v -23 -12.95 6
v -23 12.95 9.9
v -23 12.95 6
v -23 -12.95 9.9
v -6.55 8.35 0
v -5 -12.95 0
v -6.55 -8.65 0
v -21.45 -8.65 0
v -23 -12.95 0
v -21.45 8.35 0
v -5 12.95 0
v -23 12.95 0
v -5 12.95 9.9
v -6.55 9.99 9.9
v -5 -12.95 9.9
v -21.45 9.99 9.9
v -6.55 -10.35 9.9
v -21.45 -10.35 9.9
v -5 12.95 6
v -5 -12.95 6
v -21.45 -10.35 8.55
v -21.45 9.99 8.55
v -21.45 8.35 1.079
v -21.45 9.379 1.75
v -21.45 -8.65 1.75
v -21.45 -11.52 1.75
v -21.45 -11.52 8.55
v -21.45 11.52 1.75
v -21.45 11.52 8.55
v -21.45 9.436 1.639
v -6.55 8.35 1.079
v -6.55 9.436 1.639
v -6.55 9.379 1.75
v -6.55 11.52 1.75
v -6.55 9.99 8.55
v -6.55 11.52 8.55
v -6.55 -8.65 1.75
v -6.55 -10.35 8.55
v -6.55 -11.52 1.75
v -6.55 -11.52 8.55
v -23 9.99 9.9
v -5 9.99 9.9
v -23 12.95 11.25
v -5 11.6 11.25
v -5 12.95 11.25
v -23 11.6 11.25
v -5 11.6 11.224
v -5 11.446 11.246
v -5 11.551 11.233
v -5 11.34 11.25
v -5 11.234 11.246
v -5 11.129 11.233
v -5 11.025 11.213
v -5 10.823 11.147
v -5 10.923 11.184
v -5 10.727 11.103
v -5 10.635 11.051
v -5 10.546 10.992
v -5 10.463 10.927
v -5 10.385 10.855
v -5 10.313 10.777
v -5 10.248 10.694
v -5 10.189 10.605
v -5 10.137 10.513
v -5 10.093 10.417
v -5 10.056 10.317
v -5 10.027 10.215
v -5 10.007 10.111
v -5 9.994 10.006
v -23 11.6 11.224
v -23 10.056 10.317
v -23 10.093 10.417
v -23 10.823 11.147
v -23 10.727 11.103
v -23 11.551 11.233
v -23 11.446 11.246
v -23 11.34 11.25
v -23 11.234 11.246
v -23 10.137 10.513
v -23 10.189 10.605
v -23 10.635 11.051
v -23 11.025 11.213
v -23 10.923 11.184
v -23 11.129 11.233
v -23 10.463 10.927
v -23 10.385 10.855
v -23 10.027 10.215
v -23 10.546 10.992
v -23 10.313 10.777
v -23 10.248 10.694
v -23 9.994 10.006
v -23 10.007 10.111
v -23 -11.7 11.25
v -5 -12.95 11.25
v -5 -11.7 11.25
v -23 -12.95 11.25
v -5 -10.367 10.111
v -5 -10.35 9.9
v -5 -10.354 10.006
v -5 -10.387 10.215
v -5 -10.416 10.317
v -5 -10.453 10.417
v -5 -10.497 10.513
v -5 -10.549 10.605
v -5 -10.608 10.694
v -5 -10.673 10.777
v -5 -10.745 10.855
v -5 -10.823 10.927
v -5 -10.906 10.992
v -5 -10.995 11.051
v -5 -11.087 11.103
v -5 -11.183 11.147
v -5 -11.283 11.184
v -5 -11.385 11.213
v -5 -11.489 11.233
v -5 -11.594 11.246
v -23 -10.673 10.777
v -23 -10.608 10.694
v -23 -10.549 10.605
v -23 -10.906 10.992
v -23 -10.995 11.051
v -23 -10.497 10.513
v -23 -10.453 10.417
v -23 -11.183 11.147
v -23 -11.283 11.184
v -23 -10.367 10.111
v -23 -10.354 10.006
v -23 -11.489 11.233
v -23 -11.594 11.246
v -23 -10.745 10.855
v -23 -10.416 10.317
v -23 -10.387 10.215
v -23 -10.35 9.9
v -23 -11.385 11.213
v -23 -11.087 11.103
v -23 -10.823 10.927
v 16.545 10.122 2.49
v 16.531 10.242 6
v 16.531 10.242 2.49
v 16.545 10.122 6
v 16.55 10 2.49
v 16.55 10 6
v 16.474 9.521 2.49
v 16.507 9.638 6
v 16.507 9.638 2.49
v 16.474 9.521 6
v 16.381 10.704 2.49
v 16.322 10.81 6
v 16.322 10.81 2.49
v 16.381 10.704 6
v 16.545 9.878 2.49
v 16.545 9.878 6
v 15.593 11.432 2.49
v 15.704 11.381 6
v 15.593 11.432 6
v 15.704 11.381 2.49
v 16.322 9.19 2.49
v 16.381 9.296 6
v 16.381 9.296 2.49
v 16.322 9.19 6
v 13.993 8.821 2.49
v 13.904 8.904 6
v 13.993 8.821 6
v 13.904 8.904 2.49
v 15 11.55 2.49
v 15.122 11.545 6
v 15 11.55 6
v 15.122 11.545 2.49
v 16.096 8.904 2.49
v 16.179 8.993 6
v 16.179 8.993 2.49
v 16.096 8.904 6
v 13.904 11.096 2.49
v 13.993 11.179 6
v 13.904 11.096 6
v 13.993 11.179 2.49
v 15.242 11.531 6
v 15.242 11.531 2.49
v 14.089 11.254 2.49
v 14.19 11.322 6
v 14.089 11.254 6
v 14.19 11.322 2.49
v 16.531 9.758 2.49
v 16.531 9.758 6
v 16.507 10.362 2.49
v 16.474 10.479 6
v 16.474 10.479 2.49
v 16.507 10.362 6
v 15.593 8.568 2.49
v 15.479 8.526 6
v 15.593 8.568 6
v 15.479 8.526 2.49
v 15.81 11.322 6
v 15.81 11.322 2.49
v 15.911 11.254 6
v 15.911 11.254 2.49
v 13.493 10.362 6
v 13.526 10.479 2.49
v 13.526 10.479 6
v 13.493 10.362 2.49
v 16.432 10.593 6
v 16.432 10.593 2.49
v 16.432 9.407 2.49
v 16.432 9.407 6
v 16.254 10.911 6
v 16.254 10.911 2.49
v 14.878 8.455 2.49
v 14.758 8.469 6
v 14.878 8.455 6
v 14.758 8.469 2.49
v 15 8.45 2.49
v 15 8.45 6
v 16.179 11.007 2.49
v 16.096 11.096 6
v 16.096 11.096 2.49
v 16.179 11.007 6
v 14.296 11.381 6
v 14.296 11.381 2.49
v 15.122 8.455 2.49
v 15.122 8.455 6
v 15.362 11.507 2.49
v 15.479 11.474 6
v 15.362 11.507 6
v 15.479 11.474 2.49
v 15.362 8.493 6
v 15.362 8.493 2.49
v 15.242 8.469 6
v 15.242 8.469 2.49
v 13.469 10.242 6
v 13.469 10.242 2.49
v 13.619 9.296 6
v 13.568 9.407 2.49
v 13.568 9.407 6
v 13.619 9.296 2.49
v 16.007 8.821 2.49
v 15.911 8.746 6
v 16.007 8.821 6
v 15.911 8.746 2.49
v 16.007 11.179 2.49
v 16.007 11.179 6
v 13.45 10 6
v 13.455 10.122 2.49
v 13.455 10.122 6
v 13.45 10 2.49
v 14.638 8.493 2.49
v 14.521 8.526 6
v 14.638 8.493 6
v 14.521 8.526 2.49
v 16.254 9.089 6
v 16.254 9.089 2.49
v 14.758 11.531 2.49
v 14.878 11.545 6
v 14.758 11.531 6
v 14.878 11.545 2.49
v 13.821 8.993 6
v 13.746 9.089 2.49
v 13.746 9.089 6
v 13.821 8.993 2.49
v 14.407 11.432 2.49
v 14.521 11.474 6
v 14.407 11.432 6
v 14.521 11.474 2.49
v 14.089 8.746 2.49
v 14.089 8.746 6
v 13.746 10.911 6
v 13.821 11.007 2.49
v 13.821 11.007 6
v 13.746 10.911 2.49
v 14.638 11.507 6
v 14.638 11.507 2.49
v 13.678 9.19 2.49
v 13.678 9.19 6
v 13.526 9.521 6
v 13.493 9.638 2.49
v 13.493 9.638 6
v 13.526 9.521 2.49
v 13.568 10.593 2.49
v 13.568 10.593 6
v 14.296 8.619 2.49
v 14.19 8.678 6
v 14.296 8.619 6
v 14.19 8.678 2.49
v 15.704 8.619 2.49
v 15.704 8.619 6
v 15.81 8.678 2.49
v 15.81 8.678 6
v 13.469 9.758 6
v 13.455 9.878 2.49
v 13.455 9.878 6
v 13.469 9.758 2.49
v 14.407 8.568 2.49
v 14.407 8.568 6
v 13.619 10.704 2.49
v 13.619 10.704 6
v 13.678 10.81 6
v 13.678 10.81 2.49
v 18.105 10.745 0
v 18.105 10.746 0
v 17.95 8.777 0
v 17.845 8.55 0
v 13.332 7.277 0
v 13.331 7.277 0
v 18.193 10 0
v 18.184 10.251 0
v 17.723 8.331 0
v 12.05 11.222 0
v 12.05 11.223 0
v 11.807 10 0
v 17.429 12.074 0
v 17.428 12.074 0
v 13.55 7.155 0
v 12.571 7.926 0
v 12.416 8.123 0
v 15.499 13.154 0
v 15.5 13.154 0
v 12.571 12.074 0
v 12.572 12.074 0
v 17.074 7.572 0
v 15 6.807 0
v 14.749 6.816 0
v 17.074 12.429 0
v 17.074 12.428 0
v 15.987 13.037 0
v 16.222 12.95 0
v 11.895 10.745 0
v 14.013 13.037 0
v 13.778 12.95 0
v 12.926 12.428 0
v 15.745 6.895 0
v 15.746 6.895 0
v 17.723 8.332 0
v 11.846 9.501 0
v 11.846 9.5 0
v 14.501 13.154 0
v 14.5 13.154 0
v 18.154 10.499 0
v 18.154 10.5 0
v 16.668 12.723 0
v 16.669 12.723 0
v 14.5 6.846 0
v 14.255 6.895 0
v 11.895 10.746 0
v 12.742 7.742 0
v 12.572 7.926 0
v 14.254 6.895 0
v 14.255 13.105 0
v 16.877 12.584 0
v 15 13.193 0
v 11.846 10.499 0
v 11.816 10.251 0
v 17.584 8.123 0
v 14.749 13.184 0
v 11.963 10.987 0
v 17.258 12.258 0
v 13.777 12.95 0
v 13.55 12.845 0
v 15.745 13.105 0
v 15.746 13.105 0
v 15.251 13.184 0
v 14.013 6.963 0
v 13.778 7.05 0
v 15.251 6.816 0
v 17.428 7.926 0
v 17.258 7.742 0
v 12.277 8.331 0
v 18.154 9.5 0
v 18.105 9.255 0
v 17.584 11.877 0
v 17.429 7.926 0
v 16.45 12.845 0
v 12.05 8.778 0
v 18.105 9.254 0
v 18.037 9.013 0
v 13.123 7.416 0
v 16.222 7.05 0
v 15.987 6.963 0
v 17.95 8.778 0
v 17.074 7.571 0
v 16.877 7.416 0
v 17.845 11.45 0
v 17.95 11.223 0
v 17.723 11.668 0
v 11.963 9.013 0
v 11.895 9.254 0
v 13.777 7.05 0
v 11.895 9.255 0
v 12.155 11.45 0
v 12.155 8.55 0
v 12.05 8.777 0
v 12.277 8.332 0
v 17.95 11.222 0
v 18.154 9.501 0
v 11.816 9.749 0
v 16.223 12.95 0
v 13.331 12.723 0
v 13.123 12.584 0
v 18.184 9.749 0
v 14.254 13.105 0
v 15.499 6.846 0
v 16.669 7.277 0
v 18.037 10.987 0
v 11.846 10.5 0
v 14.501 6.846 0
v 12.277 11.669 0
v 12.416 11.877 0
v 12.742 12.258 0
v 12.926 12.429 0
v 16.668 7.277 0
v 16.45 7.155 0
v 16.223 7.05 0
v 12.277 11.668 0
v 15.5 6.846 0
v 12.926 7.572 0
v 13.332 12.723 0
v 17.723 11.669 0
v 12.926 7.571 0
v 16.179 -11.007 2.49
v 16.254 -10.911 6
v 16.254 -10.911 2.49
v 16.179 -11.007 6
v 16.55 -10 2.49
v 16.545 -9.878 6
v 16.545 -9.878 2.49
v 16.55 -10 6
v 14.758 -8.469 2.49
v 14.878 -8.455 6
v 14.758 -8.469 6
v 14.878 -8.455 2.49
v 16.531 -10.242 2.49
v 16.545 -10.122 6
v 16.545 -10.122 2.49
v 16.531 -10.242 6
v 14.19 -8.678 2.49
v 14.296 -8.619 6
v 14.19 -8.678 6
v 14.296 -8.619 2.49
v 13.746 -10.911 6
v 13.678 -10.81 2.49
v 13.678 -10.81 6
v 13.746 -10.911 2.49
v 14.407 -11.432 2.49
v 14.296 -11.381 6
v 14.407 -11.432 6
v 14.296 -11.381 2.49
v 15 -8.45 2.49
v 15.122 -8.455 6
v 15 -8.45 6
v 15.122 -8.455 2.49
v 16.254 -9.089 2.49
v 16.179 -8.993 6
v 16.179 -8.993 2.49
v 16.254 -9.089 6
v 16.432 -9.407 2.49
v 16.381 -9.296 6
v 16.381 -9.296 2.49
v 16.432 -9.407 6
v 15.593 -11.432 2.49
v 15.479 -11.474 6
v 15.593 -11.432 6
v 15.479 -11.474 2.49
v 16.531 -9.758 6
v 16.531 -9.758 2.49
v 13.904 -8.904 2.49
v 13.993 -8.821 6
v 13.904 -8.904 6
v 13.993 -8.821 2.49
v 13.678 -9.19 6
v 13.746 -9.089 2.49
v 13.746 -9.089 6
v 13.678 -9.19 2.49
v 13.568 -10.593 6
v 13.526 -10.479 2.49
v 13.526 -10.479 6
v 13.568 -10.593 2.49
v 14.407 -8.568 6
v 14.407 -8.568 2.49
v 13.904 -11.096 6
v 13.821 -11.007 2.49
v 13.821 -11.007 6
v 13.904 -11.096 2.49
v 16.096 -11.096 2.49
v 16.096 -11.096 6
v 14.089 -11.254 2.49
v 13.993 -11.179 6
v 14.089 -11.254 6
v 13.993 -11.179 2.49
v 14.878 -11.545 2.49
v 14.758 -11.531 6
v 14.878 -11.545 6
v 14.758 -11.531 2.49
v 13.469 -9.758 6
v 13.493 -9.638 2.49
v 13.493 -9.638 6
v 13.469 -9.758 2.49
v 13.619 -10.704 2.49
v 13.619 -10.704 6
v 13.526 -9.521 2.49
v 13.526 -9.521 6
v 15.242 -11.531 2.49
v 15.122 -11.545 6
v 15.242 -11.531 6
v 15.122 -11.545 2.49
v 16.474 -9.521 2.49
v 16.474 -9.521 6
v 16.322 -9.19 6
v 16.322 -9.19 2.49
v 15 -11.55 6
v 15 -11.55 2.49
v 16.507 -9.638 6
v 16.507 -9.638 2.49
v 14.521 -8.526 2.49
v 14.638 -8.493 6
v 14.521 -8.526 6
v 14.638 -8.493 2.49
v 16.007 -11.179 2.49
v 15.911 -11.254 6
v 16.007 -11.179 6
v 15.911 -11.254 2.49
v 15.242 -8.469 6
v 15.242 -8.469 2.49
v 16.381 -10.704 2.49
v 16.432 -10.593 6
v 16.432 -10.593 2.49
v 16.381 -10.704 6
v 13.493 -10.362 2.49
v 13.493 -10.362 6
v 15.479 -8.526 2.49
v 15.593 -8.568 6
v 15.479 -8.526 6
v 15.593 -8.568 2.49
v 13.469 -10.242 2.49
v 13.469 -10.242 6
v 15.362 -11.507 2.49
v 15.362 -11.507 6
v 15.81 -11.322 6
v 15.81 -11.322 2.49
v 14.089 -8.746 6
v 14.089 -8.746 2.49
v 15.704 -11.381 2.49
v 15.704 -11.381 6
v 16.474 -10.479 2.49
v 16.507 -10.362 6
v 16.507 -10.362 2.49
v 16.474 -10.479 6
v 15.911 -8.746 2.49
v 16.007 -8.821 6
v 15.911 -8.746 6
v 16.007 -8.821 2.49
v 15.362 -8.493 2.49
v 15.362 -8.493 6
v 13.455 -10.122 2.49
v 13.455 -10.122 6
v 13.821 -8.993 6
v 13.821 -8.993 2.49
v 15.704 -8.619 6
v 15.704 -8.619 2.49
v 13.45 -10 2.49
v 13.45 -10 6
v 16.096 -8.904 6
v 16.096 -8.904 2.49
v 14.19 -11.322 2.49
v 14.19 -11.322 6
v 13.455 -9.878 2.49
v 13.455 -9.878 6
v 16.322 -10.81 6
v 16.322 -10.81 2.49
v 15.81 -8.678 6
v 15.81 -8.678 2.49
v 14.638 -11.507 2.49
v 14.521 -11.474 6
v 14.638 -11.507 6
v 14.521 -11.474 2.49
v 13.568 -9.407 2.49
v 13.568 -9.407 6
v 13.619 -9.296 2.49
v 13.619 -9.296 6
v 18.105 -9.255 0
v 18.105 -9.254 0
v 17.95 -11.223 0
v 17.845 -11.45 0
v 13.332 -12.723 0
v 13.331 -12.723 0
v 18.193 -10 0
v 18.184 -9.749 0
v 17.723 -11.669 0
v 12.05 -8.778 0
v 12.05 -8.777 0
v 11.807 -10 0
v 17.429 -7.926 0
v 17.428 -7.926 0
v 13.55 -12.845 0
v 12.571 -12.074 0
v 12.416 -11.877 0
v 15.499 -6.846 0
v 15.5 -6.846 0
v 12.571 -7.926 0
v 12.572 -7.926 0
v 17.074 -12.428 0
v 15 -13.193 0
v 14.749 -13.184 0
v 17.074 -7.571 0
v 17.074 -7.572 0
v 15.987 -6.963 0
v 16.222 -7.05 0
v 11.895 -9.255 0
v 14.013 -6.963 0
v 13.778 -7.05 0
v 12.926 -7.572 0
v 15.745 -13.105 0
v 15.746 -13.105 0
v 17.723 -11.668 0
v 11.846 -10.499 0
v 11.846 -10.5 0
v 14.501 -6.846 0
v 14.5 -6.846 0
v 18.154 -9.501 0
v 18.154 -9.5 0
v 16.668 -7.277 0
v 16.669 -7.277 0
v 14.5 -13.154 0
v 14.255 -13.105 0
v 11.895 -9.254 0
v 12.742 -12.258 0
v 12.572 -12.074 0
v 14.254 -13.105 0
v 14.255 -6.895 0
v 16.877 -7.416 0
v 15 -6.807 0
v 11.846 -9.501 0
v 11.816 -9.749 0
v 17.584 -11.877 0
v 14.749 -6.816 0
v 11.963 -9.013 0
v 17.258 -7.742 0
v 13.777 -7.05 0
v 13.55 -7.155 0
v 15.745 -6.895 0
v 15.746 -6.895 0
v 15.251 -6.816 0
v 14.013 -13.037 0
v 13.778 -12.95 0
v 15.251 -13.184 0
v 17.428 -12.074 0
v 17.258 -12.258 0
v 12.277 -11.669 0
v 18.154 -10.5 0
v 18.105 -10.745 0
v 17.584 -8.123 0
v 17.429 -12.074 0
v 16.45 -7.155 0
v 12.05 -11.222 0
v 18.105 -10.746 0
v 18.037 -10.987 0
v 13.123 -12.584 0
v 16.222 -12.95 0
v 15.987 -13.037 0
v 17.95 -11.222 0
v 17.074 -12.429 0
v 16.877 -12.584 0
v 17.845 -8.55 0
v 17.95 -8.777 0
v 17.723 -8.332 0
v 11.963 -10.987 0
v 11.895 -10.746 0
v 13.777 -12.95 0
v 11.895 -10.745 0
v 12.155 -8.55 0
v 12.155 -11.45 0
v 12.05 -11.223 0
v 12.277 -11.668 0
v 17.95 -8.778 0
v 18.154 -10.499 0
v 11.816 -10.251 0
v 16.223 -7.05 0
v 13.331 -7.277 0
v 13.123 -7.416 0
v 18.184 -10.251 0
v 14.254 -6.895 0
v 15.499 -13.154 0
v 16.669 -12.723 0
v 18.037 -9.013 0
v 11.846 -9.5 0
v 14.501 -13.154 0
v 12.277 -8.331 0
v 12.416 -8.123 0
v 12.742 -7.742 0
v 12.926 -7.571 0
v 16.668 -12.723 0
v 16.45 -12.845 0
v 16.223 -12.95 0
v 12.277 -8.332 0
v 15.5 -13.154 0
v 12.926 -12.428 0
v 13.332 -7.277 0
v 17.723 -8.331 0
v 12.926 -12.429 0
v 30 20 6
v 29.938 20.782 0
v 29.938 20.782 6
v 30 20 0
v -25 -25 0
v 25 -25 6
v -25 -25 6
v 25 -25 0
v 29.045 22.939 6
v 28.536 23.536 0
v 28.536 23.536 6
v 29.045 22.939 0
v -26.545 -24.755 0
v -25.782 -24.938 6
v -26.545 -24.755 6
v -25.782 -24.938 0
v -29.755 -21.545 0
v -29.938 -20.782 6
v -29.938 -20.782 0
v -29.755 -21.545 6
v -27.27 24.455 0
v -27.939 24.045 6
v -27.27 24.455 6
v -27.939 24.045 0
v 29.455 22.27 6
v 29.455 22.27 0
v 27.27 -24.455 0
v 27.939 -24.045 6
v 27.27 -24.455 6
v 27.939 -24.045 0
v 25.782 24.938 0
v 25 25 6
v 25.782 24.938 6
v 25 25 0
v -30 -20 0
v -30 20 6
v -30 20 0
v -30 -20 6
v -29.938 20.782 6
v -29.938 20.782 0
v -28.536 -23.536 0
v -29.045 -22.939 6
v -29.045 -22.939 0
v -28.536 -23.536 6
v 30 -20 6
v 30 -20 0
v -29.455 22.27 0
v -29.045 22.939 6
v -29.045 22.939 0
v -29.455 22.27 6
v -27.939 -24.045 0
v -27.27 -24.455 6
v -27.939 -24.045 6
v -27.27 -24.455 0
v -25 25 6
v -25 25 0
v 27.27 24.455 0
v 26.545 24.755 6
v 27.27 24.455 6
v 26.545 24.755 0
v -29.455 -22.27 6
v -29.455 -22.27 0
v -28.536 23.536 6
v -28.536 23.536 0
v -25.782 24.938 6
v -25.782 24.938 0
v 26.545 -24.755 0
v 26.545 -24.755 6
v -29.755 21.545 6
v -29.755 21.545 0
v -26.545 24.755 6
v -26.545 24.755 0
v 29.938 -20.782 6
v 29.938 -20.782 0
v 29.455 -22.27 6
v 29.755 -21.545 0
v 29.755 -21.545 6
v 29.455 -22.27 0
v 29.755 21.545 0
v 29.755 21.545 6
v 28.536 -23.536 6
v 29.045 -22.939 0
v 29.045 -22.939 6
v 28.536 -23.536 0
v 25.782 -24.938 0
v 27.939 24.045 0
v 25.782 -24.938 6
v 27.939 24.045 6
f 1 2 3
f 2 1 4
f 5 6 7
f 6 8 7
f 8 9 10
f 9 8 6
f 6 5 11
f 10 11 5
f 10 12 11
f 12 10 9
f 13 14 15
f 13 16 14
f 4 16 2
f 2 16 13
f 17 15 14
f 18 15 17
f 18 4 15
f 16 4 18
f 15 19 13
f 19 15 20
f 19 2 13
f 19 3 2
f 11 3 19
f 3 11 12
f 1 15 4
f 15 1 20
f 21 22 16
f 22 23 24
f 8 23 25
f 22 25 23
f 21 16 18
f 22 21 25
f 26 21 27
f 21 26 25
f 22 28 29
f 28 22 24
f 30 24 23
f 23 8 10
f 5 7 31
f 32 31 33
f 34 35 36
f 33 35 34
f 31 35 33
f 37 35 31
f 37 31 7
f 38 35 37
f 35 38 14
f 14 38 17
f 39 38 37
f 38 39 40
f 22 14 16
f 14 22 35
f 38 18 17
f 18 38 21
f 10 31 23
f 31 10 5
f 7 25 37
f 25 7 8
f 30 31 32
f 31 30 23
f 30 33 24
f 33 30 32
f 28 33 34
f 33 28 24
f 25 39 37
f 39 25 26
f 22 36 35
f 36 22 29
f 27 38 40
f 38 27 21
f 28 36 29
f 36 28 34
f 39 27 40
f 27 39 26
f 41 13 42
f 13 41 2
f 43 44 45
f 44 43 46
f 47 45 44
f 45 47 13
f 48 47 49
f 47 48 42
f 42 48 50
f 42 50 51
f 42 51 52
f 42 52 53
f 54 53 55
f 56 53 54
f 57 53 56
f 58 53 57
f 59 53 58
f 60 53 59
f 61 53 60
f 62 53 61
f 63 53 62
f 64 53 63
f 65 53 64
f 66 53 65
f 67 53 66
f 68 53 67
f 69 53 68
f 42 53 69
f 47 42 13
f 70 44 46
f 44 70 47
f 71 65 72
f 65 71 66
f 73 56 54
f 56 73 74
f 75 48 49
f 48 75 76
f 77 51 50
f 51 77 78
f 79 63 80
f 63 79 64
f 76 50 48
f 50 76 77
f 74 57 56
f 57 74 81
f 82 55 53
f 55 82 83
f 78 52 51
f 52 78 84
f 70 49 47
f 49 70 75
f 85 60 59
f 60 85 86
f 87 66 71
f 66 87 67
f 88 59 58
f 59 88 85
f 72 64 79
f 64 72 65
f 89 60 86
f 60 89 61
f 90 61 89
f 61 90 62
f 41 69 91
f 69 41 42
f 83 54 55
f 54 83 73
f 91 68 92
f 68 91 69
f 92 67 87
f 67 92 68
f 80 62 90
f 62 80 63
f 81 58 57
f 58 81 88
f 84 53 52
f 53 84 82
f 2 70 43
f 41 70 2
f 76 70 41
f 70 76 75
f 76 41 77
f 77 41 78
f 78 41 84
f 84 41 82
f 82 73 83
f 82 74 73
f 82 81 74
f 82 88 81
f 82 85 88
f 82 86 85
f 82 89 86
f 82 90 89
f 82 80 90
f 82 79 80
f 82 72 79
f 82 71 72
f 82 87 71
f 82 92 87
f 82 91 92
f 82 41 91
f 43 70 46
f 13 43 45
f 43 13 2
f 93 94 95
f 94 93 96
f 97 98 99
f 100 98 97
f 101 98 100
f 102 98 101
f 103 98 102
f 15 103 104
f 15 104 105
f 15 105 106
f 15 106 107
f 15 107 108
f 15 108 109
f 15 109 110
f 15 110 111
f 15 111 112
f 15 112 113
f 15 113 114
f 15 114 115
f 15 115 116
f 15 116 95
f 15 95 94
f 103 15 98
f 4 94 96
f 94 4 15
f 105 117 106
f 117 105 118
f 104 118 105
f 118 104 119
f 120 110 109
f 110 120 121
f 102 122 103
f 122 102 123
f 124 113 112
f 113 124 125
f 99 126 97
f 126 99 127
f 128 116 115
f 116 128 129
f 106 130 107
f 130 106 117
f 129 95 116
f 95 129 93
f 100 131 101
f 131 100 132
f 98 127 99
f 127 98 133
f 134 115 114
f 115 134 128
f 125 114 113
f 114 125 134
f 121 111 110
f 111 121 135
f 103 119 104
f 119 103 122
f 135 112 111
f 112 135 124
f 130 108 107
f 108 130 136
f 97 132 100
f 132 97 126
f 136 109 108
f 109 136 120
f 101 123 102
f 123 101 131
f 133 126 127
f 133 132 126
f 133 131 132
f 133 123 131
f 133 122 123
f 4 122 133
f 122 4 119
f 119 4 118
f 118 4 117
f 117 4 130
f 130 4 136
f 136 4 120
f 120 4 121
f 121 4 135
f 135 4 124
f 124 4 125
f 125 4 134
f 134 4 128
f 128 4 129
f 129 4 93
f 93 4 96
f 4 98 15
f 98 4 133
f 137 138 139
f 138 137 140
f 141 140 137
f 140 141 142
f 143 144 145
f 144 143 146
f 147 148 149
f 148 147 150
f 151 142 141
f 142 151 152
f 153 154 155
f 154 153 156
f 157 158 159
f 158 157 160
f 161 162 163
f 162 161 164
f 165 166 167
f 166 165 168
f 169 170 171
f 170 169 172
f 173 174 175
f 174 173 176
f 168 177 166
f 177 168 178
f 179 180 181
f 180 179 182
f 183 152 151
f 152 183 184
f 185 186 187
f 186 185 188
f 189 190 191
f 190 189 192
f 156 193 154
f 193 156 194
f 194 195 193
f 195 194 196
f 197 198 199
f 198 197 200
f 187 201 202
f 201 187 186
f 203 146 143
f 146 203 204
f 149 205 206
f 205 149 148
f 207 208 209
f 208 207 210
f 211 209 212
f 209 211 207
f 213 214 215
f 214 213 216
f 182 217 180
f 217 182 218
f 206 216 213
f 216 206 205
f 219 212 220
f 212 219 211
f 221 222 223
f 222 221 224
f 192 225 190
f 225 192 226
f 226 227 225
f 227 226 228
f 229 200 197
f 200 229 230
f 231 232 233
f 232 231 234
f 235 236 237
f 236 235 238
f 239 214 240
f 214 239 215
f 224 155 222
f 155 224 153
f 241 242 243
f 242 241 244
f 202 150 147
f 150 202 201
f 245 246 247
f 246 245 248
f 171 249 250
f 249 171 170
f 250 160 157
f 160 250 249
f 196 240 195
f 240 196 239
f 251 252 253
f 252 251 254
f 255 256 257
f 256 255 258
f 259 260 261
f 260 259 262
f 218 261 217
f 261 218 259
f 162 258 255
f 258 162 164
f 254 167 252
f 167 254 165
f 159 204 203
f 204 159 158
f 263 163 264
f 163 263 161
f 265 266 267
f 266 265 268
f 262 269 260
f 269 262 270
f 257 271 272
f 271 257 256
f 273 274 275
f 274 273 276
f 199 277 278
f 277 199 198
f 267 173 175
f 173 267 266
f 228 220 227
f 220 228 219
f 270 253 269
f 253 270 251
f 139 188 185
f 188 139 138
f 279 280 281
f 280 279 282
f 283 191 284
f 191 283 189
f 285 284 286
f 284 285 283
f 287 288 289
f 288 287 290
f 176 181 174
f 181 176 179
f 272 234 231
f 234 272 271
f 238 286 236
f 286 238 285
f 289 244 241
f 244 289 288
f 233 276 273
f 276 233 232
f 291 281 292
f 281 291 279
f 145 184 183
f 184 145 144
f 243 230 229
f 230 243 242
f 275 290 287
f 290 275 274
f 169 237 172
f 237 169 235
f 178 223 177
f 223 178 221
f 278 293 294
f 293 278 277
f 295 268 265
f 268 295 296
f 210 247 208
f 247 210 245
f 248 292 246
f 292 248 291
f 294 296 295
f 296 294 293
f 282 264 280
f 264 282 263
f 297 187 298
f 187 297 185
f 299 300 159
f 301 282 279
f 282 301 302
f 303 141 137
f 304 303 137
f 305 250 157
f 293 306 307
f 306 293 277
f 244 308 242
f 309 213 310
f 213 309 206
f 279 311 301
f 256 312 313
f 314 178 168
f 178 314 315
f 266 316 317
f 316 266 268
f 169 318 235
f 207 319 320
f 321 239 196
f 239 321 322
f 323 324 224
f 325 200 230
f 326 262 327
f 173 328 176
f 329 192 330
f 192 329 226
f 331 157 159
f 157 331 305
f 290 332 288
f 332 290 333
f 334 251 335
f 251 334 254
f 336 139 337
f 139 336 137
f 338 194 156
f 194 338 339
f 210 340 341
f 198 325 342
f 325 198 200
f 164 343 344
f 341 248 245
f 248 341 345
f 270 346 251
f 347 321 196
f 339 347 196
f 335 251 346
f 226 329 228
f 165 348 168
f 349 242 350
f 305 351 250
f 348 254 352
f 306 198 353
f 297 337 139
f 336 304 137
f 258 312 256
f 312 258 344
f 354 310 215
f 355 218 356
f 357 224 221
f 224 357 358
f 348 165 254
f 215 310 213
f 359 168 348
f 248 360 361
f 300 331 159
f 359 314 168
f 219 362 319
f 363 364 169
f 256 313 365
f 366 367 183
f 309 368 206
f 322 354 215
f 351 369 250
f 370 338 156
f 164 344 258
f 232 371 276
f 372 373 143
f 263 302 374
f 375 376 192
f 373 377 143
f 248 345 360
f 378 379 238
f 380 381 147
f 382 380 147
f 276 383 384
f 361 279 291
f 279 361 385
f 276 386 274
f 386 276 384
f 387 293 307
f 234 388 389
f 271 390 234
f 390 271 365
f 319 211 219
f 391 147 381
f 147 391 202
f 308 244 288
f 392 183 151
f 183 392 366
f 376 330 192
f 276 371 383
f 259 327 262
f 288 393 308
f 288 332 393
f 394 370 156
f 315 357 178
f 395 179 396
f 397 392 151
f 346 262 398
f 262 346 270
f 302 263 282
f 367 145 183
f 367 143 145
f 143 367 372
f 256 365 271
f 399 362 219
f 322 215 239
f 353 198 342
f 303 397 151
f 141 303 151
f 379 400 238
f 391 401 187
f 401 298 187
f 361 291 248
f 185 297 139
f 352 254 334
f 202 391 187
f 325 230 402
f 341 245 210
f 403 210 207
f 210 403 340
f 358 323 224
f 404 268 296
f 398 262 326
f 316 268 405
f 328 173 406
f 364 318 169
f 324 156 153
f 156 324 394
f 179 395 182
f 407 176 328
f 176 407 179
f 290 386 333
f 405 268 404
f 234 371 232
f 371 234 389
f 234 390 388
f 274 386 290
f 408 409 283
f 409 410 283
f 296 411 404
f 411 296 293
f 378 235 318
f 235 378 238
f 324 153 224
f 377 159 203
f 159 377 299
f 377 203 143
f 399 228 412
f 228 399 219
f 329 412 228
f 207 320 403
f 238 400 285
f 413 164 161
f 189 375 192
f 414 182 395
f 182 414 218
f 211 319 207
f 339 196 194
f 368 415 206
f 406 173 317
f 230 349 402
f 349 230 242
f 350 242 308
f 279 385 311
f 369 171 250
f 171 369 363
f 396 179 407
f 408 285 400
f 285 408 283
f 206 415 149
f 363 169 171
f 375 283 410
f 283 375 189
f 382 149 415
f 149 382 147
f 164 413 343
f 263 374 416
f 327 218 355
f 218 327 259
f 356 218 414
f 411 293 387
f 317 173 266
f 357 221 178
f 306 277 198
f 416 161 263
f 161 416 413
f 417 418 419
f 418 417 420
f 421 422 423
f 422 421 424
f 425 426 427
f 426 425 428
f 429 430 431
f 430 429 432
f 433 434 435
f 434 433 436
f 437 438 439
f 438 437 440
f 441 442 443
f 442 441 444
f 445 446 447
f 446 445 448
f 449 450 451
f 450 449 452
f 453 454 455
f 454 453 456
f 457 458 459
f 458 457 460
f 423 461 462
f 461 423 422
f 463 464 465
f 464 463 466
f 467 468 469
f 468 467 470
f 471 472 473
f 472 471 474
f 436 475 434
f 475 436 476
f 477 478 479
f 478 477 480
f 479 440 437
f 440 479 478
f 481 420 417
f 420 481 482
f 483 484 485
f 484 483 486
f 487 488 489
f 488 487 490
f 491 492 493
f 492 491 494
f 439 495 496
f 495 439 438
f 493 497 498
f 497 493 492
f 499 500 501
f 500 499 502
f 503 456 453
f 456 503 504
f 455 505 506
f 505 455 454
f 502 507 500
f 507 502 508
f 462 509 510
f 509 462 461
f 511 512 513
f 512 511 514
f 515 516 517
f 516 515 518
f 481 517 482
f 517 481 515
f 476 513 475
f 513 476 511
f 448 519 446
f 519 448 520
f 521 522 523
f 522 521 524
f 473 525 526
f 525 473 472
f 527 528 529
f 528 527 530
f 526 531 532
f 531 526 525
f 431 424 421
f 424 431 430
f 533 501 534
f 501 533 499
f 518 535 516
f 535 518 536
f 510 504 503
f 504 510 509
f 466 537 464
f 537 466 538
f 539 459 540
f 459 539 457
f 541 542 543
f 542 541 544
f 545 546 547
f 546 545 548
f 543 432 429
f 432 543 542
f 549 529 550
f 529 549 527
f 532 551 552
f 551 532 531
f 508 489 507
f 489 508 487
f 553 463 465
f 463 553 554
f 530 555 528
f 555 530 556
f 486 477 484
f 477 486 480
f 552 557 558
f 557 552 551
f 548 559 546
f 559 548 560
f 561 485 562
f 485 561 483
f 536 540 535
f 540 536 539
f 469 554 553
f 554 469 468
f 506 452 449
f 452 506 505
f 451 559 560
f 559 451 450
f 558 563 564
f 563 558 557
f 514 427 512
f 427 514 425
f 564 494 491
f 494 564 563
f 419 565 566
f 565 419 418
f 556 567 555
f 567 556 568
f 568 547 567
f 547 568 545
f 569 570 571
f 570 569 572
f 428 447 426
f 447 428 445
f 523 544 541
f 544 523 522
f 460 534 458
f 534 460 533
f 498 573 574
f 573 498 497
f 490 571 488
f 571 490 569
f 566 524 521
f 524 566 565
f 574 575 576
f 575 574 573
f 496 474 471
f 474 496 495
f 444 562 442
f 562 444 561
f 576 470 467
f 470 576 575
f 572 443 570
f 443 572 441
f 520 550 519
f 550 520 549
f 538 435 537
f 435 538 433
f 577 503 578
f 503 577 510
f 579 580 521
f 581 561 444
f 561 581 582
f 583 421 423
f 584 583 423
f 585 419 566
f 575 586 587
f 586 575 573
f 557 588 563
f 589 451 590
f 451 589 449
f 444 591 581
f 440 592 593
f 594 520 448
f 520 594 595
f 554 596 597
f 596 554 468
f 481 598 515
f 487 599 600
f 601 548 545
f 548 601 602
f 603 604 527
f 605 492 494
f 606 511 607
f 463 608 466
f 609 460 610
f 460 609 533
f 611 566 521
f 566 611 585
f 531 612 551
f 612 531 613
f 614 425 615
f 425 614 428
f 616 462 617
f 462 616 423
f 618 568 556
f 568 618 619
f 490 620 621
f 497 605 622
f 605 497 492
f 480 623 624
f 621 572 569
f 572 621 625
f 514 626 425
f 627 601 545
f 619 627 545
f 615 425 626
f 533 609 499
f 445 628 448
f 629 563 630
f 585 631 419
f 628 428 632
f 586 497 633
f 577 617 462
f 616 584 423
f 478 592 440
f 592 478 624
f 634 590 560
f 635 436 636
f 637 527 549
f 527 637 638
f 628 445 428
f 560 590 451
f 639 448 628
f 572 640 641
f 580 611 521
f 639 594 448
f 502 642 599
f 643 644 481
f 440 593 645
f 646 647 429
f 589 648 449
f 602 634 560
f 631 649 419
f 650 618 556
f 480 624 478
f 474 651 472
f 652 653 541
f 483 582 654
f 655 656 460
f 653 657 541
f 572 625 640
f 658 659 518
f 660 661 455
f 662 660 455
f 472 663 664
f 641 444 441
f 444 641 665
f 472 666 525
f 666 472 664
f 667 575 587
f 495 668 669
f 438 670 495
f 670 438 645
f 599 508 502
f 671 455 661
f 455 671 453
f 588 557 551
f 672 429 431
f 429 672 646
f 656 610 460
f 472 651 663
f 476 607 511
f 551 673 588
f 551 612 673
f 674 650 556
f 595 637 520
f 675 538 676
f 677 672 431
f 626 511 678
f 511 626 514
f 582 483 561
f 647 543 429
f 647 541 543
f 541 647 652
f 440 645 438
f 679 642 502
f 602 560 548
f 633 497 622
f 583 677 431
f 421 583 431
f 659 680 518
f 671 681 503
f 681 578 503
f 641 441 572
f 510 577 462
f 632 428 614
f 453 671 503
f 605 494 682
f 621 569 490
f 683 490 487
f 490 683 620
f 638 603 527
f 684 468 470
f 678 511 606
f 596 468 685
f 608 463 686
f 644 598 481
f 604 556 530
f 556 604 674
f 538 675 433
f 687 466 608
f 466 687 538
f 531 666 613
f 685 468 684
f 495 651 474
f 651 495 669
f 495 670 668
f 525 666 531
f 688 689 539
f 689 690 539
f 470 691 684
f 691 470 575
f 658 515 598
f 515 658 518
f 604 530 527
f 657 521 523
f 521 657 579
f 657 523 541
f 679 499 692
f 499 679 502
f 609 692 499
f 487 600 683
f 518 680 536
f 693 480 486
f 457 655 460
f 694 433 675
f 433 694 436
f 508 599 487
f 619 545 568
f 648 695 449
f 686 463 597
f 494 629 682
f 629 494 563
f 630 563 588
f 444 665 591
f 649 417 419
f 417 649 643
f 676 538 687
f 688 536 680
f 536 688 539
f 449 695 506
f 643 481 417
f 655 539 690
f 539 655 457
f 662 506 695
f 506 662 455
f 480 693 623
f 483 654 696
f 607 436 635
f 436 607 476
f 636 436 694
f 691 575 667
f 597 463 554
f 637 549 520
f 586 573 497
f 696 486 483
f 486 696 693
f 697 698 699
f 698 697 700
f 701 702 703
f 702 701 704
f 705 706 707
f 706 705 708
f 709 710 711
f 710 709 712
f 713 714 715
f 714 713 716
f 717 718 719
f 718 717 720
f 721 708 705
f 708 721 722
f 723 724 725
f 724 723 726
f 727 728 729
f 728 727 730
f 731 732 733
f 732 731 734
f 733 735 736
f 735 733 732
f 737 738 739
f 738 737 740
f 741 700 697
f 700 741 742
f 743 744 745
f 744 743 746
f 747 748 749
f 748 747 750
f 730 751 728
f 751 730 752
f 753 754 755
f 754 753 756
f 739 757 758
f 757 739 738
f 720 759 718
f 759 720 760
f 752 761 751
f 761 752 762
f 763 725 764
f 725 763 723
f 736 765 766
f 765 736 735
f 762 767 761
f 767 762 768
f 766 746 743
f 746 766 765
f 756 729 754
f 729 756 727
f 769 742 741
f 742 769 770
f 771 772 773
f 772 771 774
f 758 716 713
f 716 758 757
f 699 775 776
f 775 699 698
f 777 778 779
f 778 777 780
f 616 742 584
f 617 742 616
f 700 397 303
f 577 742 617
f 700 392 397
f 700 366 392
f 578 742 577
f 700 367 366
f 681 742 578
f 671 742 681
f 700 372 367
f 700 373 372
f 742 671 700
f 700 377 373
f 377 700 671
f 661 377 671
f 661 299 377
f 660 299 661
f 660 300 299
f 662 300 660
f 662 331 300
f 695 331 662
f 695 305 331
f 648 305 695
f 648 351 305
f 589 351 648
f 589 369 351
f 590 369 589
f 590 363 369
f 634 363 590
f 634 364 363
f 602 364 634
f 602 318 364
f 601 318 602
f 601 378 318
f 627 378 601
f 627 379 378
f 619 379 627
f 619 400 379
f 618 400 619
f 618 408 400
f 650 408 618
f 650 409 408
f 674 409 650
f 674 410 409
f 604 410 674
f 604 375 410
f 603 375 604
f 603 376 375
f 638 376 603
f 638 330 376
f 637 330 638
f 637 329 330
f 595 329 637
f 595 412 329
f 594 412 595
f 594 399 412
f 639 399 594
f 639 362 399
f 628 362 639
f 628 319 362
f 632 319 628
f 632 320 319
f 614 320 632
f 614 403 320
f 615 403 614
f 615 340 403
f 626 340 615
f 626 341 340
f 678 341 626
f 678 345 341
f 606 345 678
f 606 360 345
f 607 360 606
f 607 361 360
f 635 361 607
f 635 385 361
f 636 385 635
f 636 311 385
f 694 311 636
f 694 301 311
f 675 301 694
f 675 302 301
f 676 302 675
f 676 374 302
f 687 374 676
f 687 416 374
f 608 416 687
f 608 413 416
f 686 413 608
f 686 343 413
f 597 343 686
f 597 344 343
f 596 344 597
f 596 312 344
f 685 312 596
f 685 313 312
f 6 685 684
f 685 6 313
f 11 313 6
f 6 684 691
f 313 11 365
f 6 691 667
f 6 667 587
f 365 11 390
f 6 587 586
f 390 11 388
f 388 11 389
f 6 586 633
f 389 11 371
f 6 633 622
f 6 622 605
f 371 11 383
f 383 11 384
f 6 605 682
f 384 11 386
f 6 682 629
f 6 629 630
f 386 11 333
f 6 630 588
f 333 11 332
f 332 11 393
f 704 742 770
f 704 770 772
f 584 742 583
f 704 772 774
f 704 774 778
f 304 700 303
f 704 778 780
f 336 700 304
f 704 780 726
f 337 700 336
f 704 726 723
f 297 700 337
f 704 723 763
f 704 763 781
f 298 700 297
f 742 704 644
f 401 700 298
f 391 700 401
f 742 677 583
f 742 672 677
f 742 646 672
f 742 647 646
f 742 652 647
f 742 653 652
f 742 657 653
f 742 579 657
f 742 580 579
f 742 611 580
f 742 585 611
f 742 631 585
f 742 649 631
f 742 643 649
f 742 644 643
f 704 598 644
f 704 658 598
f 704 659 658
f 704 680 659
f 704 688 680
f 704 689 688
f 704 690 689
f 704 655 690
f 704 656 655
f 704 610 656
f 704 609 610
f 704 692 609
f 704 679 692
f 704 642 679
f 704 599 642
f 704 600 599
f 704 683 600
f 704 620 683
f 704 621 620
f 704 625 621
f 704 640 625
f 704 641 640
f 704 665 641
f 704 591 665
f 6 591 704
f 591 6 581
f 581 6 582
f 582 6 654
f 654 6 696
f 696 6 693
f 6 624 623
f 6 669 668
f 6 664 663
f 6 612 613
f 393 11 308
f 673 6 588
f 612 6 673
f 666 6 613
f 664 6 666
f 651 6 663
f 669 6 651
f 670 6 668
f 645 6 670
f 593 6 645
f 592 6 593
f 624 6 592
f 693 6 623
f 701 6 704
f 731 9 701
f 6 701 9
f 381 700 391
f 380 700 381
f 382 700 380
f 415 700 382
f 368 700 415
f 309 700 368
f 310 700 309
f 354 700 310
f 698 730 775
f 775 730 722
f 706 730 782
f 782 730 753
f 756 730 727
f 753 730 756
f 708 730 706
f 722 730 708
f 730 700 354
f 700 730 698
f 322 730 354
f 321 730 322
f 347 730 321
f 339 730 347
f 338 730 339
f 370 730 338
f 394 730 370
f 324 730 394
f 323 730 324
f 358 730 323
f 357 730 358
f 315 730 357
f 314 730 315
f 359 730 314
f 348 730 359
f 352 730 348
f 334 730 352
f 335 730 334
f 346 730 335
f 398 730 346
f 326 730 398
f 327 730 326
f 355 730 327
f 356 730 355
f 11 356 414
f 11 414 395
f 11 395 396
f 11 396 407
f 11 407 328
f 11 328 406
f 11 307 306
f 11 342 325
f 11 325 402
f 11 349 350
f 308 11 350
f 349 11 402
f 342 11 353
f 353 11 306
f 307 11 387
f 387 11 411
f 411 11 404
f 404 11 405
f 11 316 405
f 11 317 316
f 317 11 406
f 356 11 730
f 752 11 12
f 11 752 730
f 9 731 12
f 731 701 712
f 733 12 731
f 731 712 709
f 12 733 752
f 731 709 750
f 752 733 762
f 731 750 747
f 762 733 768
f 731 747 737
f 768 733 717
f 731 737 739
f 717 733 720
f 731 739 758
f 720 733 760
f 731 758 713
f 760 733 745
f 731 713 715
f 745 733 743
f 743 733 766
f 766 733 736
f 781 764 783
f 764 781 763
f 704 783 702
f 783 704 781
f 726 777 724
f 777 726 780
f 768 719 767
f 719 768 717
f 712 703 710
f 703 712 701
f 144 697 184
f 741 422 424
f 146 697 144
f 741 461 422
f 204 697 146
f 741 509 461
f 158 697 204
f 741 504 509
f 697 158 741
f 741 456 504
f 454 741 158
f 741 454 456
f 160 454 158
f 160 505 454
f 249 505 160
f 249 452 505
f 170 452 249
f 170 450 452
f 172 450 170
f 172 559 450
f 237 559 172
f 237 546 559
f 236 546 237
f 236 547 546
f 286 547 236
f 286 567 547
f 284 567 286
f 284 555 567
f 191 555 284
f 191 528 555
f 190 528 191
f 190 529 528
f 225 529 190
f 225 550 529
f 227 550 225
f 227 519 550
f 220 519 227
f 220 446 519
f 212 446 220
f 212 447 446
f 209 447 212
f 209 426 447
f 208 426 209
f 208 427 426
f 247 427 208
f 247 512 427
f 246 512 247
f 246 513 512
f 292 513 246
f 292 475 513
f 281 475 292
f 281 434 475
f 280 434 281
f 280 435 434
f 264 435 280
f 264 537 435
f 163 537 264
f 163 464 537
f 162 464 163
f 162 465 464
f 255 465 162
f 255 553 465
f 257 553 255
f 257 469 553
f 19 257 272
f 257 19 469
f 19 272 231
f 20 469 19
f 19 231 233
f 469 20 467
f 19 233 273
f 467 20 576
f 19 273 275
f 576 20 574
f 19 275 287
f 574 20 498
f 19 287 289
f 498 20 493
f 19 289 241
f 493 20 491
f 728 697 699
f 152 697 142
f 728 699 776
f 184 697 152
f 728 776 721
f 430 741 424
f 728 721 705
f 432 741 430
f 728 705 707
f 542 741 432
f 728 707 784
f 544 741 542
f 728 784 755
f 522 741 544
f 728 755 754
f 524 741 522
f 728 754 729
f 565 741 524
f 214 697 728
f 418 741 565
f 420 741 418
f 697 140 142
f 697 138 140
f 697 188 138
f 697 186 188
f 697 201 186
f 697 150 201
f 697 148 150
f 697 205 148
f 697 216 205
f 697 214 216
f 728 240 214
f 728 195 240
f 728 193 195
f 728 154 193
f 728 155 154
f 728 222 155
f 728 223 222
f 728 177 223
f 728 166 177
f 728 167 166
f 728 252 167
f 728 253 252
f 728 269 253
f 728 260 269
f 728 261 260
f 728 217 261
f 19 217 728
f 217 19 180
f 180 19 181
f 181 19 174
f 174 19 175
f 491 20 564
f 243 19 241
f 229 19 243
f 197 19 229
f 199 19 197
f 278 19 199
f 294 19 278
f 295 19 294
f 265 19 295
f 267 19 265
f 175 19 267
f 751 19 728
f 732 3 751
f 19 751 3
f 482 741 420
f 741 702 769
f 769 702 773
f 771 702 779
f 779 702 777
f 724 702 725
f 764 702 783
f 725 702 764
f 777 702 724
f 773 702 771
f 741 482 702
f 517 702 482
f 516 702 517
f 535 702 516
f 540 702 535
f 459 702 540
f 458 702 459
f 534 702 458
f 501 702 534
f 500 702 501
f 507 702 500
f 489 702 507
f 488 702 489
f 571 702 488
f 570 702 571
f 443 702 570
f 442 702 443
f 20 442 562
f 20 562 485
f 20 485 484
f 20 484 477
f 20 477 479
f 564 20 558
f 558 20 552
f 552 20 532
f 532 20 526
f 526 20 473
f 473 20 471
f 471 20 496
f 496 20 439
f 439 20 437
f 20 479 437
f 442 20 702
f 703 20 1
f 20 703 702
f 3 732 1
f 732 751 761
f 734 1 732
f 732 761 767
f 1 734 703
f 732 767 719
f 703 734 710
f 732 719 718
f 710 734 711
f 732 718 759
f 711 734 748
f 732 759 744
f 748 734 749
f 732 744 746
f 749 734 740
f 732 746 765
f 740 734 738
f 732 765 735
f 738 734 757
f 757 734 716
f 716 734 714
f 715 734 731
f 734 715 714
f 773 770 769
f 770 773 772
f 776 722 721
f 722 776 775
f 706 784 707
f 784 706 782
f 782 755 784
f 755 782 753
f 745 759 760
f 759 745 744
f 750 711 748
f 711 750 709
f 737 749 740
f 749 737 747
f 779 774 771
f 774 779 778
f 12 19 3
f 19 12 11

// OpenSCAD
// file: rj45_keystone_receiver.scad
$fa = 5;
$fs = 0.01;

/*
 * The RJ45 keystone receiver
 */
// adjustments to original
clip_adjustment =0.9;   // some keystone jacks fit too tight so we add a little here
exterior_slot_adjustment = 3.4; // original 2.6

// the following have not been changed
outside_width=18;
outside_height=25 + clip_adjustment;
outside_depth=9.9;
outside_wall = 1.55;
inside_width = outside_width-(outside_wall*2);
inside_height= outside_height-5.56; //19.44;
inside_cutout_height = outside_height - 2.86;
inside_cutout_depth = outside_depth - 3.1;
exterior_slot = 7.9;
exterior_notch_height = 17.0;
exterior_notch_depth = outside_depth - 2.7;
exterior_slot_height = outside_height - 8.75;
top_clip_bar = outside_height - 2.96 ;

module rj45Receiver()
{
    difference() {
        cube([outside_width, outside_height, outside_depth]);
        translate([outside_wall, 2.6, -0.001]) {
            cube([inside_width, inside_height, exterior_slot]);
        }
        // exterior slot
        translate([outside_wall, exterior_slot_adjustment+clip_adjustment,
                exterior_slot]) {
            cube([inside_width, exterior_notch_height, 2.001]);
        }
        // exterior_notch
        translate([outside_wall, exterior_notch_height+clip_adjustment,
                exterior_notch_depth]) {
            rotate(v=[1, 0, 0], a=-27.3) 
                cube([inside_width, 3.5, 3]);
        }
        // interior cutout
        translate([outside_wall, 1.43, 1.35]) {
            cube([inside_width, inside_cutout_height, inside_cutout_depth]);
        }
    }
    // top clip bar
    translate([0, top_clip_bar, -1.35]) {
        intersection() {
            cube([outside_width, 2.96, 1.35]);
            union() {
                translate([0, 1.61, 0]) {
                    cube([20.42, 1.61, 1.35]);
                }
                translate([0, 1.35, 1.35]) {
                    rotate(v=[0, 1, 0], a=90) {
                        cylinder(h=20.42, r=1.35);
                    }
                }
            }
        }
    }
    // bottom clip bar
    translate([0, 0, -1.35]) {
        intersection() {
            cube([outside_width, outside_wall*2, 1.35]);
            union() {
                cube([20.42, 1.25, 1.35]);
                translate([0, 1.25, 1.35]) {
                    rotate(v=[0, 1, 0], a=90) {
                        cylinder(h=20.42, r=1.35);
                    }
                }
            }
        }
    }
}

// these are sometimes needed when fitting the jacks into projects
function rj45_width() = outside_width;
function rj45_height() = outside_height;
function rj45_depth() = outside_depth;

 // So a hole can be cut for the keystone socket
module rj45VolumeBlock() {
    cube([outside_width, outside_height, outside_depth]);
}

rotate([0,180,0]) 
    rj45Receiver();
// main file
// Requires support, 30% fill and PETG-CF on Textured PEI Plate with Glue Stick

rj45ReceiverOffset          = [-5, -(25.9/2), 9.9];
rj45ReceiverCutoutDimensions= [18, 25.9];

plateOffsetX                = 25.0;
plateDimensions             = [60, 50, 6];
plateRadius                 = 5.0;

m3BoltHoleDiameter          = 3.1;
m3BoltHeadDiameter          = 6.4;
m3BoltHeadHeight            = 2.5;
m3BoltHeadPositions         = [[15.0, 10.0], [15.0, -10.0]];

manifoldCorrection          = 0.01;
manifoldCorrection2         = manifoldCorrection * 2;
$fn                         = 80;


use <rj45_keystone_receiver.scad>;



decPlate();



module decPlate()
{
    difference()
    {
        roundedCube( plateDimensions, plateRadius);

        translate( [rj45ReceiverOffset[0], rj45ReceiverOffset[1], 0] )
            translate( [-rj45ReceiverCutoutDimensions[0], 0, -manifoldCorrection] )
                cube( [rj45ReceiverCutoutDimensions[0], rj45ReceiverCutoutDimensions[1], plateDimensions[2] + manifoldCorrection2] );
                
        for ( pos = m3BoltHeadPositions )
            translate( [pos[0], pos[1], -manifoldCorrection] )
            {
                cylinder(d = m3BoltHoleDiameter, h = plateDimensions[2] + manifoldCorrection2);
                cylinder(d1 = m3BoltHeadDiameter, d2 = m3BoltHoleDiameter, h = m3BoltHeadHeight ); 
            }
    }
    
    translate( rj45ReceiverOffset )
        rotate([0,180,0]) 
            rj45Receiver();
}



module roundedCube(dimensions, radius)
{

    halfWidth   = dimensions[0] / 2 - radius;
    halfLength  = dimensions[1] / 2 - radius;
    
    hull()
        for ( posXY = [ [-halfWidth, -halfLength], [-halfWidth, halfLength], [halfWidth, -halfLength], [halfWidth, halfLength] ] )
            translate( [posXY[0], posXY[1], 0] )
                cylinder(r = radius, h = dimensions[2], $fn = 40);
}
